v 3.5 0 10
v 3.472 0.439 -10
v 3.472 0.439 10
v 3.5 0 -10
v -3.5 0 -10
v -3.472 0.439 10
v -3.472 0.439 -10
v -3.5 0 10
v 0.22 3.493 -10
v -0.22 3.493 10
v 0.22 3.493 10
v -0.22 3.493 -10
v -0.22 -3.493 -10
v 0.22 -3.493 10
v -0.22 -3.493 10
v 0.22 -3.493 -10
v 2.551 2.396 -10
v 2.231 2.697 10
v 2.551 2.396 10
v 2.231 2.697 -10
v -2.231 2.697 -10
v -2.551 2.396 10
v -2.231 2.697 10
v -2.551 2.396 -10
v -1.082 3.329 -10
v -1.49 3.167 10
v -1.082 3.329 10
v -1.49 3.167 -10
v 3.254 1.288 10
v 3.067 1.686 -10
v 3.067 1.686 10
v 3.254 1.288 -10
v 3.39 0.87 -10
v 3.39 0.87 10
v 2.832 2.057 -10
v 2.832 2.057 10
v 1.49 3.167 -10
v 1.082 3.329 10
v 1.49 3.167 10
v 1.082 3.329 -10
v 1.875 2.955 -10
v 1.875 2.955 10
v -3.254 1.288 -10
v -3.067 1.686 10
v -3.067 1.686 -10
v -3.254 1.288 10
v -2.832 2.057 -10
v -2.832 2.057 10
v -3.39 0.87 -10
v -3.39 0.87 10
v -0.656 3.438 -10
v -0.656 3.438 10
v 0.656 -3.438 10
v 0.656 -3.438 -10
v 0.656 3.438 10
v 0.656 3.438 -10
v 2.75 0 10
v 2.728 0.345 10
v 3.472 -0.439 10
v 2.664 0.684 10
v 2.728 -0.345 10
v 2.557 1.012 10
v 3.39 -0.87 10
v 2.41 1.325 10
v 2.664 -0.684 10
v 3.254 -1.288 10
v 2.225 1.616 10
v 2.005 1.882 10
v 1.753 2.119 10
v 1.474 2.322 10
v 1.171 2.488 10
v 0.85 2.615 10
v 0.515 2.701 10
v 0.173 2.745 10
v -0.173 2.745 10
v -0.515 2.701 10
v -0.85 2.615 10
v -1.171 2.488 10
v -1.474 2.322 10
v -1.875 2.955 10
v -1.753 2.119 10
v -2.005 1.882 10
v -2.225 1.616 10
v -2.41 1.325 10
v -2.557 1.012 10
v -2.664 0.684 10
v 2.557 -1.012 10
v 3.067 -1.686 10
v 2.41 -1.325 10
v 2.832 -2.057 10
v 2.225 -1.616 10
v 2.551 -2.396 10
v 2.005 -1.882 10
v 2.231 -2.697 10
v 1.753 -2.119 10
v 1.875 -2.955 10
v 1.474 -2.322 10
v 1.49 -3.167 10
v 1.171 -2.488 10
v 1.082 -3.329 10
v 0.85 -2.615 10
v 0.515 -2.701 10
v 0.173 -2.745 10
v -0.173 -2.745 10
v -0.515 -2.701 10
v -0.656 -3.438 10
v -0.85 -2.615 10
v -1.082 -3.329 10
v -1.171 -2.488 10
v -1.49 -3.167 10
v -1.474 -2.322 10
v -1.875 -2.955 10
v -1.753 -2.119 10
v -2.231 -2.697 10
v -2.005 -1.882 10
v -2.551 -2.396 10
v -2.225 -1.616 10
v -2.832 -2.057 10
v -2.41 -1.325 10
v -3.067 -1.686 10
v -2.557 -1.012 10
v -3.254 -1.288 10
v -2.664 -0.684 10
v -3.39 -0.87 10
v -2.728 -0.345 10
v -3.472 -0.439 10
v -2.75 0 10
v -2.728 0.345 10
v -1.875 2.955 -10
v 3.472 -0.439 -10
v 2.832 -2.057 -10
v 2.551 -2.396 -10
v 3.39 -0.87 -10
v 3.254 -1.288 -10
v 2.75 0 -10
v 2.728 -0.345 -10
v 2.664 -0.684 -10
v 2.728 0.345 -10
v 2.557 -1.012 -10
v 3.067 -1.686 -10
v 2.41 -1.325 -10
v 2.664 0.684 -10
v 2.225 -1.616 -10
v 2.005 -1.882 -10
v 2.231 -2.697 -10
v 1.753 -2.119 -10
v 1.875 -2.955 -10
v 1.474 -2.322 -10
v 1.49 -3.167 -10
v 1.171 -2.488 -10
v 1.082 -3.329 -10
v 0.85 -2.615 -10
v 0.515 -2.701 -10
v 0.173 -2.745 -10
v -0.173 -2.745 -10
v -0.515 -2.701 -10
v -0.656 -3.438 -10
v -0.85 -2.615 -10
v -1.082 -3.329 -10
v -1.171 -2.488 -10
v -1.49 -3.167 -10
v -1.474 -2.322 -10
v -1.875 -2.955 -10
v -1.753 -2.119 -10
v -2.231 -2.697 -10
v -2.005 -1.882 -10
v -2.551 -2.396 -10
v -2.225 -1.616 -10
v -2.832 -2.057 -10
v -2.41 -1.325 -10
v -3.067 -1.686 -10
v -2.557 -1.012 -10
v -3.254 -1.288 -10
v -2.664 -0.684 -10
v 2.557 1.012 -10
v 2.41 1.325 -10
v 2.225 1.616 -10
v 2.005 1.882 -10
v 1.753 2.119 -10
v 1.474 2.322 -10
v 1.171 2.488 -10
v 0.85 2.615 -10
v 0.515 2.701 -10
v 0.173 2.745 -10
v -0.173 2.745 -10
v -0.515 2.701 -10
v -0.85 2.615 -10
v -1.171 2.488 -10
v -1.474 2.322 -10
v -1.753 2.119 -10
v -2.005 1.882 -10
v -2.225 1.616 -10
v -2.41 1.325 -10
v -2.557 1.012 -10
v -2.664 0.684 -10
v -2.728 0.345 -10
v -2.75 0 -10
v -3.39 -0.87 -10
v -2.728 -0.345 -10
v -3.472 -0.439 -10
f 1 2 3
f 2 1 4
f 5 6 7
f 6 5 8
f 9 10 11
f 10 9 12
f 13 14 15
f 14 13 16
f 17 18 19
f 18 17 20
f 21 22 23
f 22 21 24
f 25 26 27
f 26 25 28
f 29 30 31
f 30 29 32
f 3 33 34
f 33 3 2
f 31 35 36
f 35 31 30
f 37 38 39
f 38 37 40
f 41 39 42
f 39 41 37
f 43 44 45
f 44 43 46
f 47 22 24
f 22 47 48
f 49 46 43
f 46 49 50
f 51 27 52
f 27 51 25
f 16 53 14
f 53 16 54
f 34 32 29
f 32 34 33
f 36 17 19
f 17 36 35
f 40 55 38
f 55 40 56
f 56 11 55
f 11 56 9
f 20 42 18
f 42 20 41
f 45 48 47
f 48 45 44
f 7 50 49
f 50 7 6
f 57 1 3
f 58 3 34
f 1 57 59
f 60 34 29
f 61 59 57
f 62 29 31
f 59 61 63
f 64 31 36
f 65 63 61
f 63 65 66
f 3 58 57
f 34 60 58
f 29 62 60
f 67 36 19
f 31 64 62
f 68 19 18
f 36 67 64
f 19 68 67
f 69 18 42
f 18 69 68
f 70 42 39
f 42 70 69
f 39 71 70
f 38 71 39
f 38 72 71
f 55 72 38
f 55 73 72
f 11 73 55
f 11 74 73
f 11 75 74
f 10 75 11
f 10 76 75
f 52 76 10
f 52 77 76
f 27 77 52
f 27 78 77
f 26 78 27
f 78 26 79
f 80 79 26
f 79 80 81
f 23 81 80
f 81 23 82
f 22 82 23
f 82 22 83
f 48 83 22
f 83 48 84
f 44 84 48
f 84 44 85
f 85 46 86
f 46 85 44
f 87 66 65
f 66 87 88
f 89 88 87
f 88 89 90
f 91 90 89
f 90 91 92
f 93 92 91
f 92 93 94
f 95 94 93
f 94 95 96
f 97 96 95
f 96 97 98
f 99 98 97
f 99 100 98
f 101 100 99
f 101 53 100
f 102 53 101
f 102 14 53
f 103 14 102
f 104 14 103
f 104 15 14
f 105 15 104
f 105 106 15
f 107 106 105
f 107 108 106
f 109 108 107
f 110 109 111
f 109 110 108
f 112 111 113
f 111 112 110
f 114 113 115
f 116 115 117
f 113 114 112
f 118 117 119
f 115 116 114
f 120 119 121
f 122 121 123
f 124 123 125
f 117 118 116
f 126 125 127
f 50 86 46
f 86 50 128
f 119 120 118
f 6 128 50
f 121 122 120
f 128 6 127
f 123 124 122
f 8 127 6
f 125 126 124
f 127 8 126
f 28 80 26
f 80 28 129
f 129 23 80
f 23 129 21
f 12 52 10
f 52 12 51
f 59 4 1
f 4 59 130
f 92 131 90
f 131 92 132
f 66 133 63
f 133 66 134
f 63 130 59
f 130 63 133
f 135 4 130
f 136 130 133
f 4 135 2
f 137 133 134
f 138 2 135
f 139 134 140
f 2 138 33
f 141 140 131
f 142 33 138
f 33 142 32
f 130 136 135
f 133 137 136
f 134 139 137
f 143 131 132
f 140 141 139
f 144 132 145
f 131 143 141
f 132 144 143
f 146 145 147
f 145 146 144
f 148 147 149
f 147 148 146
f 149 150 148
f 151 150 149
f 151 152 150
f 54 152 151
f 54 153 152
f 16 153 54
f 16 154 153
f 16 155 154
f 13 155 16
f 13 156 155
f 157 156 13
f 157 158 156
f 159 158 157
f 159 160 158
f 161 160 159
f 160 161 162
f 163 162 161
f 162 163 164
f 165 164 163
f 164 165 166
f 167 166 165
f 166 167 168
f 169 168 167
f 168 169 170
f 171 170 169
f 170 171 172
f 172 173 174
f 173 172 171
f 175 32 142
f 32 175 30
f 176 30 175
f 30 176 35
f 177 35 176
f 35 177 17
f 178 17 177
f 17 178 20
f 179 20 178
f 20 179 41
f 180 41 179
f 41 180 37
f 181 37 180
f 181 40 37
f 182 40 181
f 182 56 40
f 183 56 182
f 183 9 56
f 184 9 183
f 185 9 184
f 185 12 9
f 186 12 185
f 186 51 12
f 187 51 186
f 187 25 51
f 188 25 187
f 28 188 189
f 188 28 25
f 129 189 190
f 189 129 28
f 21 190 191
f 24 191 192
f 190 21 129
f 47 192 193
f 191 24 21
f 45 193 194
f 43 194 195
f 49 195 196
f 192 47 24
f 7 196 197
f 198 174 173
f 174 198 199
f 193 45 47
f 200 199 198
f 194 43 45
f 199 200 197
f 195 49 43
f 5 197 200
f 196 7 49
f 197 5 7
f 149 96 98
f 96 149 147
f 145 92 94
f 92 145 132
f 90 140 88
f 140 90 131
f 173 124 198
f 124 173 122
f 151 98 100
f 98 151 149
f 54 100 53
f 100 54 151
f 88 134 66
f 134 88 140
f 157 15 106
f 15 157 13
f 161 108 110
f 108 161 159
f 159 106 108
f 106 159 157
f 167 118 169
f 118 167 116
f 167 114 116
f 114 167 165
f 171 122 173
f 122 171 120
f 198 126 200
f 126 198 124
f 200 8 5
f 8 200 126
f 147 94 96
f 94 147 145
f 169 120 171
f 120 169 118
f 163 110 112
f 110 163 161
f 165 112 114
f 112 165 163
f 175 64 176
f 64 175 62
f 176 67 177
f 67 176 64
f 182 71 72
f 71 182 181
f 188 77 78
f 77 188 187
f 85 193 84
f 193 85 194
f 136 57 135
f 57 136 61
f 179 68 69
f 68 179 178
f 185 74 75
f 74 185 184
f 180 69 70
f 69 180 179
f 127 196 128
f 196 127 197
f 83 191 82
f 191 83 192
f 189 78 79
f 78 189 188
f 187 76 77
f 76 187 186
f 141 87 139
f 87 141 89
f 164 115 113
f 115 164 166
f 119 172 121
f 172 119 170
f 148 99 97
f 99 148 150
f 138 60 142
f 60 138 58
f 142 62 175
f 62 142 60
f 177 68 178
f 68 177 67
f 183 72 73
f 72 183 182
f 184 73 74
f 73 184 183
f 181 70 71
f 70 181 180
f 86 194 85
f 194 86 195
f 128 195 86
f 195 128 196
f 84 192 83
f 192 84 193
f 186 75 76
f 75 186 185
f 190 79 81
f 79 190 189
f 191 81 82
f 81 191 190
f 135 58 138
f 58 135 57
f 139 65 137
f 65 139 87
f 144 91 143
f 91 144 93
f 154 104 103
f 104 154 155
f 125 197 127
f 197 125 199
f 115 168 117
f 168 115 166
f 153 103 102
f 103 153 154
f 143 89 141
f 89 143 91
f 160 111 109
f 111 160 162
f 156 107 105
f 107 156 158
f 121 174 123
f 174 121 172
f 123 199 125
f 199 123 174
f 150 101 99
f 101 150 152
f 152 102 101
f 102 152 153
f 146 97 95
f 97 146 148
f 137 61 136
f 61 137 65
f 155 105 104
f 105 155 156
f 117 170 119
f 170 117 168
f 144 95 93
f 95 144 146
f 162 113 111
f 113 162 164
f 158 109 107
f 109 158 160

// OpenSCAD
$fn = 50;


difference() {
	union() {
		translate(v = [0, 0, -10.0000000000]) {
			cylinder(h = 20, r = 3.5000000000);
		}
	}
	union() {
		translate(v = [0, 0, -100.0000000000]) {
			cylinder(h = 200, r = 2.7500000000);
		}
	}
}
